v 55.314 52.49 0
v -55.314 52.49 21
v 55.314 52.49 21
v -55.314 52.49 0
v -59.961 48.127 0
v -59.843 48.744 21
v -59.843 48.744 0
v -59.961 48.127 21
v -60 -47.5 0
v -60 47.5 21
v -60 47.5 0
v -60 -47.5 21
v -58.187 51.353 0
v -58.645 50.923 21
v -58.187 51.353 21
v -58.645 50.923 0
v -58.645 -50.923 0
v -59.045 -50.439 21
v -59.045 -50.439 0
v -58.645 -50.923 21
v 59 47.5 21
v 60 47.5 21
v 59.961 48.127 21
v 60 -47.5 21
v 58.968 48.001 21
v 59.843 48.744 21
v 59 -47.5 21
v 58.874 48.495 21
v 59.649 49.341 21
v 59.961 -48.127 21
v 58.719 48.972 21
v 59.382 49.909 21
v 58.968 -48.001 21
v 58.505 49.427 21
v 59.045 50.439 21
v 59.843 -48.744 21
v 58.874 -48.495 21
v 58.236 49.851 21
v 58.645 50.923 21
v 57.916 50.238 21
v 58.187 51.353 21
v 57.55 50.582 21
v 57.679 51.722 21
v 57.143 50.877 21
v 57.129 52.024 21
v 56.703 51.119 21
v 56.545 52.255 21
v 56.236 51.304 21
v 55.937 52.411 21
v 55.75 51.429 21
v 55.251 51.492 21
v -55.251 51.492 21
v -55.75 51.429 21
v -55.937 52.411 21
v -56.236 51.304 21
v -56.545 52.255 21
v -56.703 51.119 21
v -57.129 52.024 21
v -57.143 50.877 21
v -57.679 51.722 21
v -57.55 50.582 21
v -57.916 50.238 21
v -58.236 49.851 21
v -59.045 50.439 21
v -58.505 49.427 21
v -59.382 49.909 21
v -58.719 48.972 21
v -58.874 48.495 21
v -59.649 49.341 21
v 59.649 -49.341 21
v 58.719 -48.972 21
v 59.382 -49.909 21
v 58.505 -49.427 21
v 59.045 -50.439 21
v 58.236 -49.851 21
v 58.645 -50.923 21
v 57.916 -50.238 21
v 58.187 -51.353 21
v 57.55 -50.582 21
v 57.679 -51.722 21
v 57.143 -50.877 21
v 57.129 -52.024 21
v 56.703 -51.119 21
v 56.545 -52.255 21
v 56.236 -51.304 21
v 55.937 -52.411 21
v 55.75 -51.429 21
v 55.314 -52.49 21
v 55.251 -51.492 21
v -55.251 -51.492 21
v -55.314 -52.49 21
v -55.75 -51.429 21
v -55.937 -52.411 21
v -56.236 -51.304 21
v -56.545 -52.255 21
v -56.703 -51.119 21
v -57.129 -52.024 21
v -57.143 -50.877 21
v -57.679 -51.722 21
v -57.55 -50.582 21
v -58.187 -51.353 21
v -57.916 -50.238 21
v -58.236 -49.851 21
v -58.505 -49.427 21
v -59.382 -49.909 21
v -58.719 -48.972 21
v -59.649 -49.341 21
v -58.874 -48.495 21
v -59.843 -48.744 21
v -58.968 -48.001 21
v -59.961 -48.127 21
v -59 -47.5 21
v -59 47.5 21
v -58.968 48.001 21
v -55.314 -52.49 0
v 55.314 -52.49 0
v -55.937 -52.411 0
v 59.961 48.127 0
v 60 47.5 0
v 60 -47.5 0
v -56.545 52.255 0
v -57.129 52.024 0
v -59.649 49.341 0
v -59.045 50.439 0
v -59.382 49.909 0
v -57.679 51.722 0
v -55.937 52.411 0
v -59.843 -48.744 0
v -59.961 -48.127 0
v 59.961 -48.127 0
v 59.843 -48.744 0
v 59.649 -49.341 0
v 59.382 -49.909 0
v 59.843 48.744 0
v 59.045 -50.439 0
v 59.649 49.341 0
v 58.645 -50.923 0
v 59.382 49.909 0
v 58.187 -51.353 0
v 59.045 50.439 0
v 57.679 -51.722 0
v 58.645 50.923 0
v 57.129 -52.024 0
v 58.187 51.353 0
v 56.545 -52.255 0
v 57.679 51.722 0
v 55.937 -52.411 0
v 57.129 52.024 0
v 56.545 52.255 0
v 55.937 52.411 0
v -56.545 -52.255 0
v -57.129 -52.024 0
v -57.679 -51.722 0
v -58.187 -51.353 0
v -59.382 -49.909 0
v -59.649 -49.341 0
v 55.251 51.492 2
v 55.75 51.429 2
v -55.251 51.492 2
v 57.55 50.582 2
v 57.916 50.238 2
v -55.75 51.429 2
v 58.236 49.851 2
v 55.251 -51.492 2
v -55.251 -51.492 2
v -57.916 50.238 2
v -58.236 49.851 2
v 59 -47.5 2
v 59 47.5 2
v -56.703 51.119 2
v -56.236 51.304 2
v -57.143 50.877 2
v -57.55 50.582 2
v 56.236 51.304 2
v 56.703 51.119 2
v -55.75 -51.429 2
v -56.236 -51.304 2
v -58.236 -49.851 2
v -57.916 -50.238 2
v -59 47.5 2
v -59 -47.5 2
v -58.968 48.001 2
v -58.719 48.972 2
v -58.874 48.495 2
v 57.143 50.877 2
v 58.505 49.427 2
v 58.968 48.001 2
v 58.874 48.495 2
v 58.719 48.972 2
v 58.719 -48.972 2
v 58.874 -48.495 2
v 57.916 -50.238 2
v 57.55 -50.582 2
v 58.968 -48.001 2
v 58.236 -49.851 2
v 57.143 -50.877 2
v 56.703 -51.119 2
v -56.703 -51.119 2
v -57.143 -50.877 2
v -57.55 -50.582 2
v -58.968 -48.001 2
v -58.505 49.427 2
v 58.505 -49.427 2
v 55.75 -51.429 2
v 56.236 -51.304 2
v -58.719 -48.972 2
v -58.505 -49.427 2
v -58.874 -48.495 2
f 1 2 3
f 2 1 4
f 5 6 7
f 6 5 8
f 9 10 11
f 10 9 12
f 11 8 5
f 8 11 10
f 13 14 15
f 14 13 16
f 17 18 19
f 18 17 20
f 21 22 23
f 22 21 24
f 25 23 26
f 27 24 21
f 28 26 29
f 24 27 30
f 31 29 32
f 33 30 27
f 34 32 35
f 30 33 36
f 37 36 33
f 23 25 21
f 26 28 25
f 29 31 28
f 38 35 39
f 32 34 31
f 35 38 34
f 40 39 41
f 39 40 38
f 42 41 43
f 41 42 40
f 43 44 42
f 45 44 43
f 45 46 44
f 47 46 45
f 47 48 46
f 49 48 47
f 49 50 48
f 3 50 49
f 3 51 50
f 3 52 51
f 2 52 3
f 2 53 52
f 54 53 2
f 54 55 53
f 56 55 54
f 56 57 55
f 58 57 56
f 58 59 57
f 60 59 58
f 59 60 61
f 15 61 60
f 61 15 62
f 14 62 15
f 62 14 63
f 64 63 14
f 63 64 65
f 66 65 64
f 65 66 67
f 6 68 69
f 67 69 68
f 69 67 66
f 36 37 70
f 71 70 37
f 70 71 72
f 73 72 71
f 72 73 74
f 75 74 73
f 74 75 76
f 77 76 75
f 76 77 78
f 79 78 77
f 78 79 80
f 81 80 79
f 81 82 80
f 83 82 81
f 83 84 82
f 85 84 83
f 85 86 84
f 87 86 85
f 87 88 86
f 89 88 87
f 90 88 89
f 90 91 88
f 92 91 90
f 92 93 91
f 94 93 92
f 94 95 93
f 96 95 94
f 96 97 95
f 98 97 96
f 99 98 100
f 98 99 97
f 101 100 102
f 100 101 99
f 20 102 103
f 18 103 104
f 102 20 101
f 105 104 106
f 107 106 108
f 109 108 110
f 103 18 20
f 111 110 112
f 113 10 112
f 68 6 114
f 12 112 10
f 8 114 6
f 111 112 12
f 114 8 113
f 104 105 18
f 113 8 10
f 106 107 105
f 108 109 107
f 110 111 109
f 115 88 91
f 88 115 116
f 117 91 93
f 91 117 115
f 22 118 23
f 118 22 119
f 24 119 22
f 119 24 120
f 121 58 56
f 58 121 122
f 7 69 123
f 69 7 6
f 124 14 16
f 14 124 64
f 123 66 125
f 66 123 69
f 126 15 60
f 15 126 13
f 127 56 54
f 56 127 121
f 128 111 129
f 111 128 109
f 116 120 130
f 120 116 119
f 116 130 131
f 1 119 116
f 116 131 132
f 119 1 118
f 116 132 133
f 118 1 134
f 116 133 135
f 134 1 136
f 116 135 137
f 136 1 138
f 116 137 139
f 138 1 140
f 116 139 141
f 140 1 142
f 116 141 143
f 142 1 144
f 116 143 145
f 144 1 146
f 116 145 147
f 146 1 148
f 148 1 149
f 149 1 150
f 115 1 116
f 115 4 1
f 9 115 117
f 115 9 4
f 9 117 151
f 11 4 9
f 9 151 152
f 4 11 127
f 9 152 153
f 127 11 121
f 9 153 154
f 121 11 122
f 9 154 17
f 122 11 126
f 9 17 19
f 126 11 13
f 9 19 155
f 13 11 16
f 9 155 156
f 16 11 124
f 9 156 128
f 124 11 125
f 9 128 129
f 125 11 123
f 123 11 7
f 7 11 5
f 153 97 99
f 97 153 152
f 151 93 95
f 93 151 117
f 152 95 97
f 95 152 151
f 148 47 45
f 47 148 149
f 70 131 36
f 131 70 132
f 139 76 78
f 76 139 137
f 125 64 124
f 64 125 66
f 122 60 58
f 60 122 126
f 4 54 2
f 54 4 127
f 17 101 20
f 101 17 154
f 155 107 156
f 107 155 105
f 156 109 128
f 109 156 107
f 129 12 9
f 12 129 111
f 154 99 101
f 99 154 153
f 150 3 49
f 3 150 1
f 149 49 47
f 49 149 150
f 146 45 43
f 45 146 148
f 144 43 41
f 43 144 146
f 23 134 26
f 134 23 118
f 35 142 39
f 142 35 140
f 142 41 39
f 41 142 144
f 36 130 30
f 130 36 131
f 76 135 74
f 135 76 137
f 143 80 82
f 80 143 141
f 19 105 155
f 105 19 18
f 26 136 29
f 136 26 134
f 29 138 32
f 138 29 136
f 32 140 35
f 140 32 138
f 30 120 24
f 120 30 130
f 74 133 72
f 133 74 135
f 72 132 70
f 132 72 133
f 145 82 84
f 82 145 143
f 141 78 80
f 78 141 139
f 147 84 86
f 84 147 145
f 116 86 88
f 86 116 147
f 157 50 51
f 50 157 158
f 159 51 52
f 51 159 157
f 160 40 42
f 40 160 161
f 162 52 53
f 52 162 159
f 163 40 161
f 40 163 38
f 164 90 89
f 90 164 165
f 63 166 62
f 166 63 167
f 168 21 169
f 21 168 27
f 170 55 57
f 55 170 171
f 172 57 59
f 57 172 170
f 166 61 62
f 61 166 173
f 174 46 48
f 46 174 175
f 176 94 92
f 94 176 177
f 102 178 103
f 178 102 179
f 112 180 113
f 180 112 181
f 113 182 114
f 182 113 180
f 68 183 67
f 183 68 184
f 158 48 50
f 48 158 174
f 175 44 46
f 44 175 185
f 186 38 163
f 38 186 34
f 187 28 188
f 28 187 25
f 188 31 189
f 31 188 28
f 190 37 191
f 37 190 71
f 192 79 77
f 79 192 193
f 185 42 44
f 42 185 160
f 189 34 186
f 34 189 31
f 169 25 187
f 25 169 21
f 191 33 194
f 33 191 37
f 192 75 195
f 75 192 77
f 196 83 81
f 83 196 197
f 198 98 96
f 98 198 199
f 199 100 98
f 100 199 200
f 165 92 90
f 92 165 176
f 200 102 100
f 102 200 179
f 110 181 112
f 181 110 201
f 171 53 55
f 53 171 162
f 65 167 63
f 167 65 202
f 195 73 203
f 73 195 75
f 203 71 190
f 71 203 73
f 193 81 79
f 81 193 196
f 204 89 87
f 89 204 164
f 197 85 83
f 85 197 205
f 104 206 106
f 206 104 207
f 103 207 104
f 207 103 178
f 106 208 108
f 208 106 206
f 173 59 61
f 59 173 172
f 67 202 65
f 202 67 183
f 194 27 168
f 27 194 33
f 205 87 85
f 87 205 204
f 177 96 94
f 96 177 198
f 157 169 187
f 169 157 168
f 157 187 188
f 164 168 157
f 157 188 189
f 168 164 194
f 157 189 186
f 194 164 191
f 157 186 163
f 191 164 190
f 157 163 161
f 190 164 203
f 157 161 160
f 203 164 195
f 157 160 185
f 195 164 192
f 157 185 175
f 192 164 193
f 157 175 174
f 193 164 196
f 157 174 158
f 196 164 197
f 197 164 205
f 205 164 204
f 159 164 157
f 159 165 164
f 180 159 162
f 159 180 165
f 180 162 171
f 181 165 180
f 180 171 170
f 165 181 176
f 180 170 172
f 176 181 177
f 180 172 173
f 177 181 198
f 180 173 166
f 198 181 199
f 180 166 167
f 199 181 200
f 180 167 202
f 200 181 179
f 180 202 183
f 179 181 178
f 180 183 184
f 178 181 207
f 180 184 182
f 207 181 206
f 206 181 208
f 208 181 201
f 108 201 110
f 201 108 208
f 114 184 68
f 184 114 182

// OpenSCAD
$fn = 50;


difference() {
	union() {
		hull() {
			translate(v = [-55.0000000000, 47.5000000000, 0]) {
				cylinder(h = 21, r = 5);
			}
			translate(v = [55.0000000000, 47.5000000000, 0]) {
				cylinder(h = 21, r = 5);
			}
			translate(v = [-55.0000000000, -47.5000000000, 0]) {
				cylinder(h = 21, r = 5);
			}
			translate(v = [55.0000000000, -47.5000000000, 0]) {
				cylinder(h = 21, r = 5);
			}
		}
	}
	union() {
		translate(v = [0, 0, 2]) {
			hull() {
				translate(v = [-55.0000000000, 47.5000000000, 0]) {
					cylinder(h = 19, r = 4);
				}
				translate(v = [55.0000000000, 47.5000000000, 0]) {
					cylinder(h = 19, r = 4);
				}
				translate(v = [-55.0000000000, -47.5000000000, 0]) {
					cylinder(h = 19, r = 4);
				}
				translate(v = [55.0000000000, -47.5000000000, 0]) {
					cylinder(h = 19, r = 4);
				}
			}
		}
	}
}
